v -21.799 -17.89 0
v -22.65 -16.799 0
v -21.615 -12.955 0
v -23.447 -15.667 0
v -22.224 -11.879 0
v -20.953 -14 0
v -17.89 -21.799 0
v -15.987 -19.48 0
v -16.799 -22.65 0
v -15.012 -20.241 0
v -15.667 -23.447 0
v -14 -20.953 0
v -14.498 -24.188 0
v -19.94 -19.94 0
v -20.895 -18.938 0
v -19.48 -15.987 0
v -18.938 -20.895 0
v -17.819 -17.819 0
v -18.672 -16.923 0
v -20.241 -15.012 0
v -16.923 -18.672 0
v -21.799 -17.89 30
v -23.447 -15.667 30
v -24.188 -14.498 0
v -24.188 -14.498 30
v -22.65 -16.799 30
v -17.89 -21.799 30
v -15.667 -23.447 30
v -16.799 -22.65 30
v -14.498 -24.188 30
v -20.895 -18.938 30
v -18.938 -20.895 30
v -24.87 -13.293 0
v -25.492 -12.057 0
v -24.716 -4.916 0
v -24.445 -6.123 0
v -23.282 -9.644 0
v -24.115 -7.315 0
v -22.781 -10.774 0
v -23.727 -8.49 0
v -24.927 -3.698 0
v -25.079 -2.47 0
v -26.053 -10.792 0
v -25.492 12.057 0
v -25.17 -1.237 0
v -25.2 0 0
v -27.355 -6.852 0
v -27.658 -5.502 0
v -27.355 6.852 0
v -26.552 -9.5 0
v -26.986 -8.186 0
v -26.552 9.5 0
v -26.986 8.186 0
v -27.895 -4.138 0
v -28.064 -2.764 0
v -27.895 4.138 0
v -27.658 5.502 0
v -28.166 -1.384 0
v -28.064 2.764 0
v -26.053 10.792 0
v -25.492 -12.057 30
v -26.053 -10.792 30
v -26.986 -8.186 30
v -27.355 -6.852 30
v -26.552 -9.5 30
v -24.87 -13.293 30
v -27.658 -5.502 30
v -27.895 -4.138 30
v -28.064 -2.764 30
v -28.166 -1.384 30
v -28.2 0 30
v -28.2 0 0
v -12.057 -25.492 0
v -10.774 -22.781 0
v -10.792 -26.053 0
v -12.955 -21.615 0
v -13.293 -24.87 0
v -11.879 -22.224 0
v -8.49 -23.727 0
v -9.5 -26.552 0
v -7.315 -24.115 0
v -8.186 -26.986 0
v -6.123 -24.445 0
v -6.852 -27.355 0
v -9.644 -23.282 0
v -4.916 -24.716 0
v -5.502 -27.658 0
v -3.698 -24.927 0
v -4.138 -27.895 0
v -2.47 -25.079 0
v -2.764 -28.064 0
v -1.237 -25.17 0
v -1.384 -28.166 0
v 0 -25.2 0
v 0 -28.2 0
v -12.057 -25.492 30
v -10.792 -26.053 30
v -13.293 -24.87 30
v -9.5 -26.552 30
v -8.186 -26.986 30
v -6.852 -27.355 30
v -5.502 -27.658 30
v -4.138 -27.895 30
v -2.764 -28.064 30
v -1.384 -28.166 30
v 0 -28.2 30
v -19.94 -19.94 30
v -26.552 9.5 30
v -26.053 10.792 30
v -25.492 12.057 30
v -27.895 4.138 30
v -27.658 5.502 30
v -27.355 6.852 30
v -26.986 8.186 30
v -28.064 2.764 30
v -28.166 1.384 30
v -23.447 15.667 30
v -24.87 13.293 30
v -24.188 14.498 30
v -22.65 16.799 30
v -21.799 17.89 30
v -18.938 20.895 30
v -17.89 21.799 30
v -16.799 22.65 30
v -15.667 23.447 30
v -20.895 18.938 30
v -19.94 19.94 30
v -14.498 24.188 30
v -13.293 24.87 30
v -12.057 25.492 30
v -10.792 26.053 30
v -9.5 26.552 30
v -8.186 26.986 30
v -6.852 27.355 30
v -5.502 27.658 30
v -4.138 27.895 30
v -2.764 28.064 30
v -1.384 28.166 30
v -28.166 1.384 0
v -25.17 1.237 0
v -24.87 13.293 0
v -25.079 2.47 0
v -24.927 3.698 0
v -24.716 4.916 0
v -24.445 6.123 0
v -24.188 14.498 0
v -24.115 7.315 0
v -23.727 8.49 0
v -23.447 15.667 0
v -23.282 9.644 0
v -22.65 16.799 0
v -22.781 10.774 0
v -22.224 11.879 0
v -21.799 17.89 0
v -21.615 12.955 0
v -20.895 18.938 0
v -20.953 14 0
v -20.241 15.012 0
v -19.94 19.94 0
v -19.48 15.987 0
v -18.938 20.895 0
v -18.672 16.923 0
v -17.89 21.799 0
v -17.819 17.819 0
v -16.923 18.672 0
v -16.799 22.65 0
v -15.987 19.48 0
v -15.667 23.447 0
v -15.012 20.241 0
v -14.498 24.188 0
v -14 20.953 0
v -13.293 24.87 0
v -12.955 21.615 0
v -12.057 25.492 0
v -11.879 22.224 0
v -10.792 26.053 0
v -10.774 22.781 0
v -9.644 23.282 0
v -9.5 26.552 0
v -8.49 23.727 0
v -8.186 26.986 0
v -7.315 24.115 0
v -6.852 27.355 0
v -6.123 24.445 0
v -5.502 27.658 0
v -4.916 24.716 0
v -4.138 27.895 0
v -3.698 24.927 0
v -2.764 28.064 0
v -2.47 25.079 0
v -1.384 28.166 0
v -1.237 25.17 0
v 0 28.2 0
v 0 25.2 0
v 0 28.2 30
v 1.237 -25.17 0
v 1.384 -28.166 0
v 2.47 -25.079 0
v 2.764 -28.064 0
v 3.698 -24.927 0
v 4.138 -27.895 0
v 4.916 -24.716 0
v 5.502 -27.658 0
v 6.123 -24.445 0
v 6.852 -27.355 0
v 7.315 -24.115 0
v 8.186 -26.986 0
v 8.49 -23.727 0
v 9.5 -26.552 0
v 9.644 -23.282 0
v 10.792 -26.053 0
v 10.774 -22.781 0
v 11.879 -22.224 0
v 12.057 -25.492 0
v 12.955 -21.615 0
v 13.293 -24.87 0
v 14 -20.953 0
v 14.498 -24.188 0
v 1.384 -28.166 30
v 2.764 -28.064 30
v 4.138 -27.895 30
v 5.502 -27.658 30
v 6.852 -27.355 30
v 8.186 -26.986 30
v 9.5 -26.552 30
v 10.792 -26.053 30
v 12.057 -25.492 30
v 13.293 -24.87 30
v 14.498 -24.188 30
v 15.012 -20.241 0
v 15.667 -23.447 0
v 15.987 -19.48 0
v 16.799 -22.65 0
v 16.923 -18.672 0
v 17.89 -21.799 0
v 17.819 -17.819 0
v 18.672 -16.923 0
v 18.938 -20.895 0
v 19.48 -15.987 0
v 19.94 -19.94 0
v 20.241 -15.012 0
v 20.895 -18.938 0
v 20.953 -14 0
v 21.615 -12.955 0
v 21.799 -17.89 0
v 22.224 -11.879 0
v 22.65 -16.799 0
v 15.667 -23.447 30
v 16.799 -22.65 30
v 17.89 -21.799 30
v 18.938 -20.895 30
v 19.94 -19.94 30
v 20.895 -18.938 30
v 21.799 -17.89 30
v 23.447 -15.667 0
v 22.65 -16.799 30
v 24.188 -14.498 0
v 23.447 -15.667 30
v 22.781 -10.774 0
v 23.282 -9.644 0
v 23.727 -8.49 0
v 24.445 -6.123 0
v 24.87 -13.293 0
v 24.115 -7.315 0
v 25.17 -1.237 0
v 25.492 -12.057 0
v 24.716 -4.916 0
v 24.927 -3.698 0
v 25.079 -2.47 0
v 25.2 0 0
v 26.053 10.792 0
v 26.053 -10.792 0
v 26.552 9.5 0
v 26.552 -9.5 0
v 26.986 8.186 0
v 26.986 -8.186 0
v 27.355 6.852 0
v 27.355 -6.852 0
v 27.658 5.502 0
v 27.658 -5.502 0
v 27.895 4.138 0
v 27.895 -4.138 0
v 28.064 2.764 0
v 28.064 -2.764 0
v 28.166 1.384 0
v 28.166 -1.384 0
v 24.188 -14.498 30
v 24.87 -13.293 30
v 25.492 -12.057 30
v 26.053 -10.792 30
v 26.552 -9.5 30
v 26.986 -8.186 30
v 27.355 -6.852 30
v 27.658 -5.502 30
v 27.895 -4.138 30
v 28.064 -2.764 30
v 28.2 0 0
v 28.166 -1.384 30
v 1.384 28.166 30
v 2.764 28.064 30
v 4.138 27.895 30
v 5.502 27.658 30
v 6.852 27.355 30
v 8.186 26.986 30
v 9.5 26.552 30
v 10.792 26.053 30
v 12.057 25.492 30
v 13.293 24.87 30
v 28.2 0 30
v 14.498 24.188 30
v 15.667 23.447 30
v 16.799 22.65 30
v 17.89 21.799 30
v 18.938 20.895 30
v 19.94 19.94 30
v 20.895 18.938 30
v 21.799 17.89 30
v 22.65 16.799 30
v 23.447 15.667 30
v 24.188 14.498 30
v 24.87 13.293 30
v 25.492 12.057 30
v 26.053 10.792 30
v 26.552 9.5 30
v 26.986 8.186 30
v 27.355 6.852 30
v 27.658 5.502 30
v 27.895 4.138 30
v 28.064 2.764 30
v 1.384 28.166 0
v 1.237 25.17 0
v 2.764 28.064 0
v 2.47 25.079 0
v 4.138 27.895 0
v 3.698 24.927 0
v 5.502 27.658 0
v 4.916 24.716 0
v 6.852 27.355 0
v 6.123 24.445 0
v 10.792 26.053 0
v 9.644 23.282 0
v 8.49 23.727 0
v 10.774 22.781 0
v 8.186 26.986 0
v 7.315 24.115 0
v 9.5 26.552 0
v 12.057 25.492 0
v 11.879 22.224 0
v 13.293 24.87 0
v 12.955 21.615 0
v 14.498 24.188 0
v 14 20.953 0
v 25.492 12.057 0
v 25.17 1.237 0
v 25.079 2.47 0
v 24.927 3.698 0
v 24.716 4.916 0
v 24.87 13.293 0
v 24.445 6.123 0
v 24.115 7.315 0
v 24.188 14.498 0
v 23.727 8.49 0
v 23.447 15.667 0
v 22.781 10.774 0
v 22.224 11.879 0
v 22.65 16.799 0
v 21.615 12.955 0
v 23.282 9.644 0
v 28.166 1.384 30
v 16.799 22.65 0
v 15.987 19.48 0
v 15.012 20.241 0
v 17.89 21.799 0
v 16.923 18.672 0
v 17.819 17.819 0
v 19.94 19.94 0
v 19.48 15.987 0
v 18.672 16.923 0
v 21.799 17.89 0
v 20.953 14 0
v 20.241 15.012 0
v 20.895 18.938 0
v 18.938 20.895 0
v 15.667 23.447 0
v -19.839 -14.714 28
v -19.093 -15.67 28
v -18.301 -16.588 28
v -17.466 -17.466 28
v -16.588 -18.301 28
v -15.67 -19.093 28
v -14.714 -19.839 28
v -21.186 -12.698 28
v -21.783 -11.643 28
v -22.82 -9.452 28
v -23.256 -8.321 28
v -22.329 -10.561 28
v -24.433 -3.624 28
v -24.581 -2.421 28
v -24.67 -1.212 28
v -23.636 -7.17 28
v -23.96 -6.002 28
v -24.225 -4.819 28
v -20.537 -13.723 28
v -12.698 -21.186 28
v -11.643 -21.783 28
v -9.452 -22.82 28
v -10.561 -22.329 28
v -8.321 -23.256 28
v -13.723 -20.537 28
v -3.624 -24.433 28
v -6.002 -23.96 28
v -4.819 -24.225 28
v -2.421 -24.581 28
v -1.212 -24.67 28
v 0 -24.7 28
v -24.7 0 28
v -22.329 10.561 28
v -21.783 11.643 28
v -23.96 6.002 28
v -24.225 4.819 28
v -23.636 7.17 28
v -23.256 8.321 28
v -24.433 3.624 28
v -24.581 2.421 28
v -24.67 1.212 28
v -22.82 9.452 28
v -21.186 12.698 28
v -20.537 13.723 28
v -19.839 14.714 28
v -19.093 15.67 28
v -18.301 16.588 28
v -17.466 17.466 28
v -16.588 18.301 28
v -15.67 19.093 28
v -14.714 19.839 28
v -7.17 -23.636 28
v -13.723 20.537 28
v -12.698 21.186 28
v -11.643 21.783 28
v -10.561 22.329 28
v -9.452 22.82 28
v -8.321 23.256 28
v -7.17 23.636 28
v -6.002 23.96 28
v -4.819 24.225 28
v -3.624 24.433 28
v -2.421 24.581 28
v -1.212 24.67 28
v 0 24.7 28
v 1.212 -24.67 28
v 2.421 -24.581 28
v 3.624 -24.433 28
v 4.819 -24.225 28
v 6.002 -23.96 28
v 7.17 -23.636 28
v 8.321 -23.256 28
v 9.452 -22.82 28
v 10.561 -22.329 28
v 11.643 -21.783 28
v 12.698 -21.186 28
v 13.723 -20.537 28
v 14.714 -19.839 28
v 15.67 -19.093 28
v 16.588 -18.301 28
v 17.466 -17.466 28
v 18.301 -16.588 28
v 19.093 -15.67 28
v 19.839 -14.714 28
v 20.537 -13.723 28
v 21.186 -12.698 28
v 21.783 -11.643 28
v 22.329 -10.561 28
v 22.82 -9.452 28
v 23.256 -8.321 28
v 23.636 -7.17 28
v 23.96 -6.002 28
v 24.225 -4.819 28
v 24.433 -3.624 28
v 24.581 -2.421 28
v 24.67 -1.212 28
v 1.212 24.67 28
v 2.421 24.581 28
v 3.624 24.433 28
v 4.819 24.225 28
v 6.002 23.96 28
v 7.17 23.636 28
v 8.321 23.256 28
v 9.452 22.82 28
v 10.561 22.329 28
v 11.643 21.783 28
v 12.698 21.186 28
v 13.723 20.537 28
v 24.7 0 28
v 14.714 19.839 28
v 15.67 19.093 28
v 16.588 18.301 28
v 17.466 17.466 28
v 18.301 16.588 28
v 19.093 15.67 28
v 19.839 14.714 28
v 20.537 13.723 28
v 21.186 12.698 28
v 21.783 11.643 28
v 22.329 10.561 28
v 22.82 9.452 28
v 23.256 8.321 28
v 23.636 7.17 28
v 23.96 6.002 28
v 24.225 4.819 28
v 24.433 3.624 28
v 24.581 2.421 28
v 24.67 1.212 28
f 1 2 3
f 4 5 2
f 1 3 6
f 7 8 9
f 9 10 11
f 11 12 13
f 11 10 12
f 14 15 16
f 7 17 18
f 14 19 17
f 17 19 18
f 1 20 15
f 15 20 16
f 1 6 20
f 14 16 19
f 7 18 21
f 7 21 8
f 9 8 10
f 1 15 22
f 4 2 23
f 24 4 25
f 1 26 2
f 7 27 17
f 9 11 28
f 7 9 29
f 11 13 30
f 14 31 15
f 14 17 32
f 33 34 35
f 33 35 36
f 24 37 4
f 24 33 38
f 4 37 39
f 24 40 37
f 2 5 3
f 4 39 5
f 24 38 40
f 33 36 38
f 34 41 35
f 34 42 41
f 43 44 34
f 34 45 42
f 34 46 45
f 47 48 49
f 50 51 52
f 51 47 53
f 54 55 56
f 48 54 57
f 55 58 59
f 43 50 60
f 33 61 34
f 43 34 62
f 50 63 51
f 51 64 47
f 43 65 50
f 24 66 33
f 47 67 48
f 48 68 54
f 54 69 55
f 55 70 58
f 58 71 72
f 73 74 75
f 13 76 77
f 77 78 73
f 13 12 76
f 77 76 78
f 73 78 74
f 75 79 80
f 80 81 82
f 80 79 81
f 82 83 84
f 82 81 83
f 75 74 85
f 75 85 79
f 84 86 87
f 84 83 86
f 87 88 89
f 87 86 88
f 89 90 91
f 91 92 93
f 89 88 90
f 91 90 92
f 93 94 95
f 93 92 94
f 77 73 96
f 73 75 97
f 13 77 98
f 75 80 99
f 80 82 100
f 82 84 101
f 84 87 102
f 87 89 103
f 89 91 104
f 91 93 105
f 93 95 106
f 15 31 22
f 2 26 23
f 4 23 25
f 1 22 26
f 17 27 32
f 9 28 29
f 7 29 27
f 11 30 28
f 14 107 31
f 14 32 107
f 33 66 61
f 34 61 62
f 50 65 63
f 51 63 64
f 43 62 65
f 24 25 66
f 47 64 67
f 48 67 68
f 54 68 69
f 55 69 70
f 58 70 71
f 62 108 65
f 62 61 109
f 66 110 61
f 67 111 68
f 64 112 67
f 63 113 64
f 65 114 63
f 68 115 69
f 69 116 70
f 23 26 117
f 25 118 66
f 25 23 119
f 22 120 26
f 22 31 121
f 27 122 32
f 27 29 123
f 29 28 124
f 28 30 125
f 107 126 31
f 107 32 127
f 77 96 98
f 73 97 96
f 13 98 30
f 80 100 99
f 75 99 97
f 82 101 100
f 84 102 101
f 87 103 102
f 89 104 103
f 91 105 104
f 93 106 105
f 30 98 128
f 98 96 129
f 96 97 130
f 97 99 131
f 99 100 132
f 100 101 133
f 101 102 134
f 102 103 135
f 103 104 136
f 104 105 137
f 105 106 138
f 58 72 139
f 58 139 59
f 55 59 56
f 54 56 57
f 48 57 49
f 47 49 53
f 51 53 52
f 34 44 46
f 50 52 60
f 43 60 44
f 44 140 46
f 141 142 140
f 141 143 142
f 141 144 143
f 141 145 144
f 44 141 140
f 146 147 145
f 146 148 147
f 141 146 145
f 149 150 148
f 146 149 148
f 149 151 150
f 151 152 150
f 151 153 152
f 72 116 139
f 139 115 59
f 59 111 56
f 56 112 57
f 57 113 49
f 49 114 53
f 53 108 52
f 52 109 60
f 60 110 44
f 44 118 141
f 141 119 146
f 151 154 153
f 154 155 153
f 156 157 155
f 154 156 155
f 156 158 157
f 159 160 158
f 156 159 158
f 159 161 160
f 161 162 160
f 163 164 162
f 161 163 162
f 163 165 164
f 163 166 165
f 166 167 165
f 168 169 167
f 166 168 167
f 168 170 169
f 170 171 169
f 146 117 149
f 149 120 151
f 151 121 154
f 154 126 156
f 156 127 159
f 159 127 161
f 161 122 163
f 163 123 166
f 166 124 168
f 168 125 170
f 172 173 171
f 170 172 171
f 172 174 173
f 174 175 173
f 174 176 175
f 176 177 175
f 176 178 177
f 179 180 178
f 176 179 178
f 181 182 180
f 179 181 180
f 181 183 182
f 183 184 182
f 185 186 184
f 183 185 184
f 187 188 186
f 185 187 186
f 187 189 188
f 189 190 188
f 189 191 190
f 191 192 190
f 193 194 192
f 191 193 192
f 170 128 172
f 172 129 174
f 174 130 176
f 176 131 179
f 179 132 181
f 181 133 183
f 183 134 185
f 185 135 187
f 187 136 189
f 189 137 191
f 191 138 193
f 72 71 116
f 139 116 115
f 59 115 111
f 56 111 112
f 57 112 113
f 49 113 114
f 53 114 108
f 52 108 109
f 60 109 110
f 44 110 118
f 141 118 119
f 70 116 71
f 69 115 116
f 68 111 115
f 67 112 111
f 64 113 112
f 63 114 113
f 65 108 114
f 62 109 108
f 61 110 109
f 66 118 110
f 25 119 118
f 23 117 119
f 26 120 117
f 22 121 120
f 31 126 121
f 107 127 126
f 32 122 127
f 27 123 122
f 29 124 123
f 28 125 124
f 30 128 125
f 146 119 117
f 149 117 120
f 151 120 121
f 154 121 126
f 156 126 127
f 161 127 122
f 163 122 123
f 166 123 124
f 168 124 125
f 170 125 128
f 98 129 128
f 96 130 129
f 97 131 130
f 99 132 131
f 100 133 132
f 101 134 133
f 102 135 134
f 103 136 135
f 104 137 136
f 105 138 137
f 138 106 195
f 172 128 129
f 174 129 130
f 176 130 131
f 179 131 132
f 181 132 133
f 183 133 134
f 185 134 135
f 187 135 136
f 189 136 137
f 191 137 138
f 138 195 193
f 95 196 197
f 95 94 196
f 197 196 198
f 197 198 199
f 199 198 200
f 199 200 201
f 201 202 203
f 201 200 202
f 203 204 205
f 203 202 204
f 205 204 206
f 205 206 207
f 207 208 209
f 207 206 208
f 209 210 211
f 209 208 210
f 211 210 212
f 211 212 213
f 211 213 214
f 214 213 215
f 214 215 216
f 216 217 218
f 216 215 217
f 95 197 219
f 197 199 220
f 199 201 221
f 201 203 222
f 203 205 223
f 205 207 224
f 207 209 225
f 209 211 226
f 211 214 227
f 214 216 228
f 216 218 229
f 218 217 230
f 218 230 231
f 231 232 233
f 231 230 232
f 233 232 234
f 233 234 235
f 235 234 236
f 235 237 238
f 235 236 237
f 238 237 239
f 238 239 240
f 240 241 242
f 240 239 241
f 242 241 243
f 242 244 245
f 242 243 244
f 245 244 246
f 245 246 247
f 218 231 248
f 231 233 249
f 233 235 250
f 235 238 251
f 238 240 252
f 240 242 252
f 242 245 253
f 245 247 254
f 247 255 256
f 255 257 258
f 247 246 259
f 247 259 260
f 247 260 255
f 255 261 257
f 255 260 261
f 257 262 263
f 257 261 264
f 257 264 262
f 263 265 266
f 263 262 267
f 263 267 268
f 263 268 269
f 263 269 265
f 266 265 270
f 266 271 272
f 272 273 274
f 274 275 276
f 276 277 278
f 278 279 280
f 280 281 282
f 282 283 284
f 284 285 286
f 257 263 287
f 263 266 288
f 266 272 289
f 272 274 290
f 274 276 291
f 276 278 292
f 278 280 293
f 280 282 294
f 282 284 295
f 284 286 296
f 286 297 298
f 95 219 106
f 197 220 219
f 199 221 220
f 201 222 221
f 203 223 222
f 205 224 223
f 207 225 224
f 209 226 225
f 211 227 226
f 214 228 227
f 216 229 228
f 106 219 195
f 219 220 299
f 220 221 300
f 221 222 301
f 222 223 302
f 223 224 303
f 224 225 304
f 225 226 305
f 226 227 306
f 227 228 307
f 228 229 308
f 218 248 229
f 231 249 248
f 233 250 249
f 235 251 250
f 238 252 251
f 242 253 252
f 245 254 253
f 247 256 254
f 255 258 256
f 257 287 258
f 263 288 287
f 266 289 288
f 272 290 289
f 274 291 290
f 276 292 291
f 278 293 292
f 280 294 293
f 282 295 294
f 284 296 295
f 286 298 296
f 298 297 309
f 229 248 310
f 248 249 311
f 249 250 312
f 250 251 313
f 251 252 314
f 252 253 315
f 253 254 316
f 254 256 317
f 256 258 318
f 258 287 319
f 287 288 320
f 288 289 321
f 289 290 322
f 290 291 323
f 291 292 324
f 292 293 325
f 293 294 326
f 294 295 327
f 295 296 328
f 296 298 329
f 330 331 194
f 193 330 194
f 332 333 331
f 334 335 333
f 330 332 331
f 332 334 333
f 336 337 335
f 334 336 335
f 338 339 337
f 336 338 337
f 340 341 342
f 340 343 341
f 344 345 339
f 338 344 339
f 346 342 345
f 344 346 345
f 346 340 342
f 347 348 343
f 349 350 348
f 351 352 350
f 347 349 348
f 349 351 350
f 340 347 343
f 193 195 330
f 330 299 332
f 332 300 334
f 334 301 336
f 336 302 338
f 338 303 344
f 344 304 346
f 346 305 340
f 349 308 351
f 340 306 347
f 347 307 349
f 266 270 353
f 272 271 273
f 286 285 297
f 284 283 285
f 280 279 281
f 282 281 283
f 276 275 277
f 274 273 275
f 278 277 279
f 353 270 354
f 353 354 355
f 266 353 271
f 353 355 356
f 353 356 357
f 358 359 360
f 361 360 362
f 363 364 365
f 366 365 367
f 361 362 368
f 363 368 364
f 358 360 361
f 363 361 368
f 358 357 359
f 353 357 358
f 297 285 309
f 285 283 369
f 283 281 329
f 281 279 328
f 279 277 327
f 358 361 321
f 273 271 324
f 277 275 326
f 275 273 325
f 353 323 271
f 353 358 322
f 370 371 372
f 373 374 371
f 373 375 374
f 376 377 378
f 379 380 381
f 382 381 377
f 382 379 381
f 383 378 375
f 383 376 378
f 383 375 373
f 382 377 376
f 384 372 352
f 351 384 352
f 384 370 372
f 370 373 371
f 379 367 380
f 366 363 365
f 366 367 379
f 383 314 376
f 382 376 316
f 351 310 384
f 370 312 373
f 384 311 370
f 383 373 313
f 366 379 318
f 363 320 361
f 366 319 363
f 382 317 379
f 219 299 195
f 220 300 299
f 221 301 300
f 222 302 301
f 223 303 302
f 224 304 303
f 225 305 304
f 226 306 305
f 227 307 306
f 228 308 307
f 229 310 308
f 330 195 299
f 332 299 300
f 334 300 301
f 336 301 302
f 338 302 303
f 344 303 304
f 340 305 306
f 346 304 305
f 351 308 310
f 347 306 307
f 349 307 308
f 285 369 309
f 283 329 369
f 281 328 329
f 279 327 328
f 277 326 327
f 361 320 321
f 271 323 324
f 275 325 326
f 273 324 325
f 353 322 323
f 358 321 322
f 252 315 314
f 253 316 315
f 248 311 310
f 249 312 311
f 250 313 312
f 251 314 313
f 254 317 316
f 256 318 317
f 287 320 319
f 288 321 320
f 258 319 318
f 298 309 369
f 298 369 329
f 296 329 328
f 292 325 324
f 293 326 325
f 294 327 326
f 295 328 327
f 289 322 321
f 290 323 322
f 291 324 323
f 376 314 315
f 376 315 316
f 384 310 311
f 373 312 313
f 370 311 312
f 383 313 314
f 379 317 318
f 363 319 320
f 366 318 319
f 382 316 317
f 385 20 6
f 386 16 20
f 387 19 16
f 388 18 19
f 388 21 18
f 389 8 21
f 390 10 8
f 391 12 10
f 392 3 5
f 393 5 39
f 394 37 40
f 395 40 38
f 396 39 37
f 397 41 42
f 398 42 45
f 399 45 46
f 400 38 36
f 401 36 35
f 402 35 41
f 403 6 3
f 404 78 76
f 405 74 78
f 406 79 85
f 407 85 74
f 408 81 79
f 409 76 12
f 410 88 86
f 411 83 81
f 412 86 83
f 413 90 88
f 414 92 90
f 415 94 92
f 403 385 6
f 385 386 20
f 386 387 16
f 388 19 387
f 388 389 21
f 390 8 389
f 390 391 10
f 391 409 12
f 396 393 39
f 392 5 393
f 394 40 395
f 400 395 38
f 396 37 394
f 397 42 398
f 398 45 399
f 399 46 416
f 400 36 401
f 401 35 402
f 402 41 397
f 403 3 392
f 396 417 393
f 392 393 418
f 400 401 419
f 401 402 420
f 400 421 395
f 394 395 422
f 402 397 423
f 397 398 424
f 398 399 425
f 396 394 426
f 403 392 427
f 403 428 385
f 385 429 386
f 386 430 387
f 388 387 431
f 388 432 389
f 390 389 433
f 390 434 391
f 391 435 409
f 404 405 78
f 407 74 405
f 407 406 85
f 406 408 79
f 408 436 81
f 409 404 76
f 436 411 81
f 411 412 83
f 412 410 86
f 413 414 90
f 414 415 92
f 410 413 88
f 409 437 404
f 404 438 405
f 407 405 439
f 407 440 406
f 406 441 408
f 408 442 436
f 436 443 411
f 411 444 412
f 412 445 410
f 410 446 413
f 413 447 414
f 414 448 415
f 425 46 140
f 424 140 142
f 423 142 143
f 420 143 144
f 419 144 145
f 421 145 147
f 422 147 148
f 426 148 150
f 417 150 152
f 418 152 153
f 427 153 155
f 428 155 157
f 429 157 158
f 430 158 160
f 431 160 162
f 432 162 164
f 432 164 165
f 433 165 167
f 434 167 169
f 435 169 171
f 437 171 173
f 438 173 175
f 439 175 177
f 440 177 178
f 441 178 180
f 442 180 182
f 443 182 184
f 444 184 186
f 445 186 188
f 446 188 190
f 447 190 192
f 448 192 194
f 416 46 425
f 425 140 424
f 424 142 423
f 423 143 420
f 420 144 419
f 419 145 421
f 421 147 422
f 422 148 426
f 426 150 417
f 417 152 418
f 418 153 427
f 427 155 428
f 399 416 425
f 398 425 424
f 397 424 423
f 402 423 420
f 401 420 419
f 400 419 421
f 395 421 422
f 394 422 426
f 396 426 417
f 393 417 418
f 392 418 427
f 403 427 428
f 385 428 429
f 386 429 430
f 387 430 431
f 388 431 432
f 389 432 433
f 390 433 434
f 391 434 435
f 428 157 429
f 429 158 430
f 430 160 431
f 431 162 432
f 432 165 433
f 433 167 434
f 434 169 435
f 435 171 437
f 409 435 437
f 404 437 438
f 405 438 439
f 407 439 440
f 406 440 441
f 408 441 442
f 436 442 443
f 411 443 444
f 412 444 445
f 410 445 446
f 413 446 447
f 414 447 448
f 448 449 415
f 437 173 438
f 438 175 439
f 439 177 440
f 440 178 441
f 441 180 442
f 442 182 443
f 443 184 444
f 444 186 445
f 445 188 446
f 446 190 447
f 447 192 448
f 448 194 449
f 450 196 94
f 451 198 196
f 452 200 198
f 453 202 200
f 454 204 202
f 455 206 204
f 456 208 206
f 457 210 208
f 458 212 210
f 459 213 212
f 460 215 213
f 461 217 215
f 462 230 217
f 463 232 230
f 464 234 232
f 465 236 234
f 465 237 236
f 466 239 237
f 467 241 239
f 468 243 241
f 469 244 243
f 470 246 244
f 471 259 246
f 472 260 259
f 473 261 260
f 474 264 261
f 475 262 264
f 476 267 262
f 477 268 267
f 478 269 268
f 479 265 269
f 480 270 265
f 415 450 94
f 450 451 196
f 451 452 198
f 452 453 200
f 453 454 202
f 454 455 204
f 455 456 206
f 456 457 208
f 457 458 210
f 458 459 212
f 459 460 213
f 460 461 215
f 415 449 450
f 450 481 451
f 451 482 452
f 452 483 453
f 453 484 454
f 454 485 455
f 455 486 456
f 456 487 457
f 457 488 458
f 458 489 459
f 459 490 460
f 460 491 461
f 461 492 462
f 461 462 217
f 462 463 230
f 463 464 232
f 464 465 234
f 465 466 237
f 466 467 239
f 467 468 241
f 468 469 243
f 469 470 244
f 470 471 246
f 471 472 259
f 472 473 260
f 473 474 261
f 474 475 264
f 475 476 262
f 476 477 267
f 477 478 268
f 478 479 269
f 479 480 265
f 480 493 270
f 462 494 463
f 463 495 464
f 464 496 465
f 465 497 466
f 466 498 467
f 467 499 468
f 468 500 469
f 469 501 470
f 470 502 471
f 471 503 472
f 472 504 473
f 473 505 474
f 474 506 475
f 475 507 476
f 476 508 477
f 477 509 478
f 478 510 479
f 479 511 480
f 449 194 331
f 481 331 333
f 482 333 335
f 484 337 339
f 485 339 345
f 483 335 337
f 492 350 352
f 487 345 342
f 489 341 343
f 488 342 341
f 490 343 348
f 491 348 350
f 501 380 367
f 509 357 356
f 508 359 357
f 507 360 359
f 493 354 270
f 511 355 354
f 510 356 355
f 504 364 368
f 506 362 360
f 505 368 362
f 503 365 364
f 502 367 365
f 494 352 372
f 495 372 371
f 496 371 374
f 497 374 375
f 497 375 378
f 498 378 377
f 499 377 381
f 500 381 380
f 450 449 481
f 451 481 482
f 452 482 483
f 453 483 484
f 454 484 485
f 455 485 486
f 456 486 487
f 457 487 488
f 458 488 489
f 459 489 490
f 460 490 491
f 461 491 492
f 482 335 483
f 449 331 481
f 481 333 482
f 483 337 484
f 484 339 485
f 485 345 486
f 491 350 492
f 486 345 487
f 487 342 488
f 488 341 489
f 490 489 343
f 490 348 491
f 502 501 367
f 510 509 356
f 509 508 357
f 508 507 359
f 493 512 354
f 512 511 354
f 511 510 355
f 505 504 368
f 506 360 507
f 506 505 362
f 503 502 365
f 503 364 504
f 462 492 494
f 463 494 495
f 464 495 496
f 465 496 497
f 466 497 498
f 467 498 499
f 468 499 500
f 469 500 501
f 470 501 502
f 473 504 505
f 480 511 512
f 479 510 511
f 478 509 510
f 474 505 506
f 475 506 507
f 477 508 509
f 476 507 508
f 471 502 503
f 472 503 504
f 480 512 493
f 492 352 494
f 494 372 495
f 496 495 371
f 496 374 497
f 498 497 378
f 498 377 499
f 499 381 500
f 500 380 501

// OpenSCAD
// Pipe Cap Model
// Version: 0.01
// Description: A parametric cap for a 50mm PVC pipe.

//
// Parameters
//

// The outer diameter of the pipe this cap should fit over
pipe_diameter = 50; // [mm]

// The total length/height of the cap
cap_length = 30; // [mm]

// The thickness of the side walls
wall_thickness = 3; // [mm]

// The thickness of the top surface
top_thickness = 3; // [mm]

// Tolerance for the fit. A positive value creates a looser fit.
// For a press-fit, 0.2 to 0.5 is a good starting range depending on the printer.
fit_tolerance = 0.4; // [mm]

// The amount by which the inner diameter decreases from the bottom to the top.
// This creates a taper on the inside for a snugger fit.
inner_taper = 1; // [mm]

// The resolution of the curves. Higher values create smoother circles.
resolution = 128;


//
// Model
//

$fn = resolution;

difference() {
    // 1. Create the outer solid shape of the cap.
    // The outer diameter is the pipe's diameter, plus tolerance, plus the thickness of two walls.
    outer_diameter = pipe_diameter + fit_tolerance + (2 * wall_thickness);
    cylinder(h = cap_length, d = outer_diameter, center = false);

    // 2. Create the inner void and subtract it.
    // The height is calculated to leave the specified top_thickness.
    // The "+1" is a common technique to ensure a clean boolean subtraction.
    inner_height = cap_length - top_thickness + 1;

    // The inner diameter at the opening includes the tolerance.
    inner_bottom_diameter = pipe_diameter + fit_tolerance;

    // The inner diameter at the top is smaller to create the taper.
    inner_top_diameter = inner_bottom_diameter - inner_taper;

    // We don't need to translate this cylinder as both shapes start at z=0.
    cylinder(h = inner_height, d1 = inner_bottom_diameter, d2 = inner_top_diameter, center = false);
}
